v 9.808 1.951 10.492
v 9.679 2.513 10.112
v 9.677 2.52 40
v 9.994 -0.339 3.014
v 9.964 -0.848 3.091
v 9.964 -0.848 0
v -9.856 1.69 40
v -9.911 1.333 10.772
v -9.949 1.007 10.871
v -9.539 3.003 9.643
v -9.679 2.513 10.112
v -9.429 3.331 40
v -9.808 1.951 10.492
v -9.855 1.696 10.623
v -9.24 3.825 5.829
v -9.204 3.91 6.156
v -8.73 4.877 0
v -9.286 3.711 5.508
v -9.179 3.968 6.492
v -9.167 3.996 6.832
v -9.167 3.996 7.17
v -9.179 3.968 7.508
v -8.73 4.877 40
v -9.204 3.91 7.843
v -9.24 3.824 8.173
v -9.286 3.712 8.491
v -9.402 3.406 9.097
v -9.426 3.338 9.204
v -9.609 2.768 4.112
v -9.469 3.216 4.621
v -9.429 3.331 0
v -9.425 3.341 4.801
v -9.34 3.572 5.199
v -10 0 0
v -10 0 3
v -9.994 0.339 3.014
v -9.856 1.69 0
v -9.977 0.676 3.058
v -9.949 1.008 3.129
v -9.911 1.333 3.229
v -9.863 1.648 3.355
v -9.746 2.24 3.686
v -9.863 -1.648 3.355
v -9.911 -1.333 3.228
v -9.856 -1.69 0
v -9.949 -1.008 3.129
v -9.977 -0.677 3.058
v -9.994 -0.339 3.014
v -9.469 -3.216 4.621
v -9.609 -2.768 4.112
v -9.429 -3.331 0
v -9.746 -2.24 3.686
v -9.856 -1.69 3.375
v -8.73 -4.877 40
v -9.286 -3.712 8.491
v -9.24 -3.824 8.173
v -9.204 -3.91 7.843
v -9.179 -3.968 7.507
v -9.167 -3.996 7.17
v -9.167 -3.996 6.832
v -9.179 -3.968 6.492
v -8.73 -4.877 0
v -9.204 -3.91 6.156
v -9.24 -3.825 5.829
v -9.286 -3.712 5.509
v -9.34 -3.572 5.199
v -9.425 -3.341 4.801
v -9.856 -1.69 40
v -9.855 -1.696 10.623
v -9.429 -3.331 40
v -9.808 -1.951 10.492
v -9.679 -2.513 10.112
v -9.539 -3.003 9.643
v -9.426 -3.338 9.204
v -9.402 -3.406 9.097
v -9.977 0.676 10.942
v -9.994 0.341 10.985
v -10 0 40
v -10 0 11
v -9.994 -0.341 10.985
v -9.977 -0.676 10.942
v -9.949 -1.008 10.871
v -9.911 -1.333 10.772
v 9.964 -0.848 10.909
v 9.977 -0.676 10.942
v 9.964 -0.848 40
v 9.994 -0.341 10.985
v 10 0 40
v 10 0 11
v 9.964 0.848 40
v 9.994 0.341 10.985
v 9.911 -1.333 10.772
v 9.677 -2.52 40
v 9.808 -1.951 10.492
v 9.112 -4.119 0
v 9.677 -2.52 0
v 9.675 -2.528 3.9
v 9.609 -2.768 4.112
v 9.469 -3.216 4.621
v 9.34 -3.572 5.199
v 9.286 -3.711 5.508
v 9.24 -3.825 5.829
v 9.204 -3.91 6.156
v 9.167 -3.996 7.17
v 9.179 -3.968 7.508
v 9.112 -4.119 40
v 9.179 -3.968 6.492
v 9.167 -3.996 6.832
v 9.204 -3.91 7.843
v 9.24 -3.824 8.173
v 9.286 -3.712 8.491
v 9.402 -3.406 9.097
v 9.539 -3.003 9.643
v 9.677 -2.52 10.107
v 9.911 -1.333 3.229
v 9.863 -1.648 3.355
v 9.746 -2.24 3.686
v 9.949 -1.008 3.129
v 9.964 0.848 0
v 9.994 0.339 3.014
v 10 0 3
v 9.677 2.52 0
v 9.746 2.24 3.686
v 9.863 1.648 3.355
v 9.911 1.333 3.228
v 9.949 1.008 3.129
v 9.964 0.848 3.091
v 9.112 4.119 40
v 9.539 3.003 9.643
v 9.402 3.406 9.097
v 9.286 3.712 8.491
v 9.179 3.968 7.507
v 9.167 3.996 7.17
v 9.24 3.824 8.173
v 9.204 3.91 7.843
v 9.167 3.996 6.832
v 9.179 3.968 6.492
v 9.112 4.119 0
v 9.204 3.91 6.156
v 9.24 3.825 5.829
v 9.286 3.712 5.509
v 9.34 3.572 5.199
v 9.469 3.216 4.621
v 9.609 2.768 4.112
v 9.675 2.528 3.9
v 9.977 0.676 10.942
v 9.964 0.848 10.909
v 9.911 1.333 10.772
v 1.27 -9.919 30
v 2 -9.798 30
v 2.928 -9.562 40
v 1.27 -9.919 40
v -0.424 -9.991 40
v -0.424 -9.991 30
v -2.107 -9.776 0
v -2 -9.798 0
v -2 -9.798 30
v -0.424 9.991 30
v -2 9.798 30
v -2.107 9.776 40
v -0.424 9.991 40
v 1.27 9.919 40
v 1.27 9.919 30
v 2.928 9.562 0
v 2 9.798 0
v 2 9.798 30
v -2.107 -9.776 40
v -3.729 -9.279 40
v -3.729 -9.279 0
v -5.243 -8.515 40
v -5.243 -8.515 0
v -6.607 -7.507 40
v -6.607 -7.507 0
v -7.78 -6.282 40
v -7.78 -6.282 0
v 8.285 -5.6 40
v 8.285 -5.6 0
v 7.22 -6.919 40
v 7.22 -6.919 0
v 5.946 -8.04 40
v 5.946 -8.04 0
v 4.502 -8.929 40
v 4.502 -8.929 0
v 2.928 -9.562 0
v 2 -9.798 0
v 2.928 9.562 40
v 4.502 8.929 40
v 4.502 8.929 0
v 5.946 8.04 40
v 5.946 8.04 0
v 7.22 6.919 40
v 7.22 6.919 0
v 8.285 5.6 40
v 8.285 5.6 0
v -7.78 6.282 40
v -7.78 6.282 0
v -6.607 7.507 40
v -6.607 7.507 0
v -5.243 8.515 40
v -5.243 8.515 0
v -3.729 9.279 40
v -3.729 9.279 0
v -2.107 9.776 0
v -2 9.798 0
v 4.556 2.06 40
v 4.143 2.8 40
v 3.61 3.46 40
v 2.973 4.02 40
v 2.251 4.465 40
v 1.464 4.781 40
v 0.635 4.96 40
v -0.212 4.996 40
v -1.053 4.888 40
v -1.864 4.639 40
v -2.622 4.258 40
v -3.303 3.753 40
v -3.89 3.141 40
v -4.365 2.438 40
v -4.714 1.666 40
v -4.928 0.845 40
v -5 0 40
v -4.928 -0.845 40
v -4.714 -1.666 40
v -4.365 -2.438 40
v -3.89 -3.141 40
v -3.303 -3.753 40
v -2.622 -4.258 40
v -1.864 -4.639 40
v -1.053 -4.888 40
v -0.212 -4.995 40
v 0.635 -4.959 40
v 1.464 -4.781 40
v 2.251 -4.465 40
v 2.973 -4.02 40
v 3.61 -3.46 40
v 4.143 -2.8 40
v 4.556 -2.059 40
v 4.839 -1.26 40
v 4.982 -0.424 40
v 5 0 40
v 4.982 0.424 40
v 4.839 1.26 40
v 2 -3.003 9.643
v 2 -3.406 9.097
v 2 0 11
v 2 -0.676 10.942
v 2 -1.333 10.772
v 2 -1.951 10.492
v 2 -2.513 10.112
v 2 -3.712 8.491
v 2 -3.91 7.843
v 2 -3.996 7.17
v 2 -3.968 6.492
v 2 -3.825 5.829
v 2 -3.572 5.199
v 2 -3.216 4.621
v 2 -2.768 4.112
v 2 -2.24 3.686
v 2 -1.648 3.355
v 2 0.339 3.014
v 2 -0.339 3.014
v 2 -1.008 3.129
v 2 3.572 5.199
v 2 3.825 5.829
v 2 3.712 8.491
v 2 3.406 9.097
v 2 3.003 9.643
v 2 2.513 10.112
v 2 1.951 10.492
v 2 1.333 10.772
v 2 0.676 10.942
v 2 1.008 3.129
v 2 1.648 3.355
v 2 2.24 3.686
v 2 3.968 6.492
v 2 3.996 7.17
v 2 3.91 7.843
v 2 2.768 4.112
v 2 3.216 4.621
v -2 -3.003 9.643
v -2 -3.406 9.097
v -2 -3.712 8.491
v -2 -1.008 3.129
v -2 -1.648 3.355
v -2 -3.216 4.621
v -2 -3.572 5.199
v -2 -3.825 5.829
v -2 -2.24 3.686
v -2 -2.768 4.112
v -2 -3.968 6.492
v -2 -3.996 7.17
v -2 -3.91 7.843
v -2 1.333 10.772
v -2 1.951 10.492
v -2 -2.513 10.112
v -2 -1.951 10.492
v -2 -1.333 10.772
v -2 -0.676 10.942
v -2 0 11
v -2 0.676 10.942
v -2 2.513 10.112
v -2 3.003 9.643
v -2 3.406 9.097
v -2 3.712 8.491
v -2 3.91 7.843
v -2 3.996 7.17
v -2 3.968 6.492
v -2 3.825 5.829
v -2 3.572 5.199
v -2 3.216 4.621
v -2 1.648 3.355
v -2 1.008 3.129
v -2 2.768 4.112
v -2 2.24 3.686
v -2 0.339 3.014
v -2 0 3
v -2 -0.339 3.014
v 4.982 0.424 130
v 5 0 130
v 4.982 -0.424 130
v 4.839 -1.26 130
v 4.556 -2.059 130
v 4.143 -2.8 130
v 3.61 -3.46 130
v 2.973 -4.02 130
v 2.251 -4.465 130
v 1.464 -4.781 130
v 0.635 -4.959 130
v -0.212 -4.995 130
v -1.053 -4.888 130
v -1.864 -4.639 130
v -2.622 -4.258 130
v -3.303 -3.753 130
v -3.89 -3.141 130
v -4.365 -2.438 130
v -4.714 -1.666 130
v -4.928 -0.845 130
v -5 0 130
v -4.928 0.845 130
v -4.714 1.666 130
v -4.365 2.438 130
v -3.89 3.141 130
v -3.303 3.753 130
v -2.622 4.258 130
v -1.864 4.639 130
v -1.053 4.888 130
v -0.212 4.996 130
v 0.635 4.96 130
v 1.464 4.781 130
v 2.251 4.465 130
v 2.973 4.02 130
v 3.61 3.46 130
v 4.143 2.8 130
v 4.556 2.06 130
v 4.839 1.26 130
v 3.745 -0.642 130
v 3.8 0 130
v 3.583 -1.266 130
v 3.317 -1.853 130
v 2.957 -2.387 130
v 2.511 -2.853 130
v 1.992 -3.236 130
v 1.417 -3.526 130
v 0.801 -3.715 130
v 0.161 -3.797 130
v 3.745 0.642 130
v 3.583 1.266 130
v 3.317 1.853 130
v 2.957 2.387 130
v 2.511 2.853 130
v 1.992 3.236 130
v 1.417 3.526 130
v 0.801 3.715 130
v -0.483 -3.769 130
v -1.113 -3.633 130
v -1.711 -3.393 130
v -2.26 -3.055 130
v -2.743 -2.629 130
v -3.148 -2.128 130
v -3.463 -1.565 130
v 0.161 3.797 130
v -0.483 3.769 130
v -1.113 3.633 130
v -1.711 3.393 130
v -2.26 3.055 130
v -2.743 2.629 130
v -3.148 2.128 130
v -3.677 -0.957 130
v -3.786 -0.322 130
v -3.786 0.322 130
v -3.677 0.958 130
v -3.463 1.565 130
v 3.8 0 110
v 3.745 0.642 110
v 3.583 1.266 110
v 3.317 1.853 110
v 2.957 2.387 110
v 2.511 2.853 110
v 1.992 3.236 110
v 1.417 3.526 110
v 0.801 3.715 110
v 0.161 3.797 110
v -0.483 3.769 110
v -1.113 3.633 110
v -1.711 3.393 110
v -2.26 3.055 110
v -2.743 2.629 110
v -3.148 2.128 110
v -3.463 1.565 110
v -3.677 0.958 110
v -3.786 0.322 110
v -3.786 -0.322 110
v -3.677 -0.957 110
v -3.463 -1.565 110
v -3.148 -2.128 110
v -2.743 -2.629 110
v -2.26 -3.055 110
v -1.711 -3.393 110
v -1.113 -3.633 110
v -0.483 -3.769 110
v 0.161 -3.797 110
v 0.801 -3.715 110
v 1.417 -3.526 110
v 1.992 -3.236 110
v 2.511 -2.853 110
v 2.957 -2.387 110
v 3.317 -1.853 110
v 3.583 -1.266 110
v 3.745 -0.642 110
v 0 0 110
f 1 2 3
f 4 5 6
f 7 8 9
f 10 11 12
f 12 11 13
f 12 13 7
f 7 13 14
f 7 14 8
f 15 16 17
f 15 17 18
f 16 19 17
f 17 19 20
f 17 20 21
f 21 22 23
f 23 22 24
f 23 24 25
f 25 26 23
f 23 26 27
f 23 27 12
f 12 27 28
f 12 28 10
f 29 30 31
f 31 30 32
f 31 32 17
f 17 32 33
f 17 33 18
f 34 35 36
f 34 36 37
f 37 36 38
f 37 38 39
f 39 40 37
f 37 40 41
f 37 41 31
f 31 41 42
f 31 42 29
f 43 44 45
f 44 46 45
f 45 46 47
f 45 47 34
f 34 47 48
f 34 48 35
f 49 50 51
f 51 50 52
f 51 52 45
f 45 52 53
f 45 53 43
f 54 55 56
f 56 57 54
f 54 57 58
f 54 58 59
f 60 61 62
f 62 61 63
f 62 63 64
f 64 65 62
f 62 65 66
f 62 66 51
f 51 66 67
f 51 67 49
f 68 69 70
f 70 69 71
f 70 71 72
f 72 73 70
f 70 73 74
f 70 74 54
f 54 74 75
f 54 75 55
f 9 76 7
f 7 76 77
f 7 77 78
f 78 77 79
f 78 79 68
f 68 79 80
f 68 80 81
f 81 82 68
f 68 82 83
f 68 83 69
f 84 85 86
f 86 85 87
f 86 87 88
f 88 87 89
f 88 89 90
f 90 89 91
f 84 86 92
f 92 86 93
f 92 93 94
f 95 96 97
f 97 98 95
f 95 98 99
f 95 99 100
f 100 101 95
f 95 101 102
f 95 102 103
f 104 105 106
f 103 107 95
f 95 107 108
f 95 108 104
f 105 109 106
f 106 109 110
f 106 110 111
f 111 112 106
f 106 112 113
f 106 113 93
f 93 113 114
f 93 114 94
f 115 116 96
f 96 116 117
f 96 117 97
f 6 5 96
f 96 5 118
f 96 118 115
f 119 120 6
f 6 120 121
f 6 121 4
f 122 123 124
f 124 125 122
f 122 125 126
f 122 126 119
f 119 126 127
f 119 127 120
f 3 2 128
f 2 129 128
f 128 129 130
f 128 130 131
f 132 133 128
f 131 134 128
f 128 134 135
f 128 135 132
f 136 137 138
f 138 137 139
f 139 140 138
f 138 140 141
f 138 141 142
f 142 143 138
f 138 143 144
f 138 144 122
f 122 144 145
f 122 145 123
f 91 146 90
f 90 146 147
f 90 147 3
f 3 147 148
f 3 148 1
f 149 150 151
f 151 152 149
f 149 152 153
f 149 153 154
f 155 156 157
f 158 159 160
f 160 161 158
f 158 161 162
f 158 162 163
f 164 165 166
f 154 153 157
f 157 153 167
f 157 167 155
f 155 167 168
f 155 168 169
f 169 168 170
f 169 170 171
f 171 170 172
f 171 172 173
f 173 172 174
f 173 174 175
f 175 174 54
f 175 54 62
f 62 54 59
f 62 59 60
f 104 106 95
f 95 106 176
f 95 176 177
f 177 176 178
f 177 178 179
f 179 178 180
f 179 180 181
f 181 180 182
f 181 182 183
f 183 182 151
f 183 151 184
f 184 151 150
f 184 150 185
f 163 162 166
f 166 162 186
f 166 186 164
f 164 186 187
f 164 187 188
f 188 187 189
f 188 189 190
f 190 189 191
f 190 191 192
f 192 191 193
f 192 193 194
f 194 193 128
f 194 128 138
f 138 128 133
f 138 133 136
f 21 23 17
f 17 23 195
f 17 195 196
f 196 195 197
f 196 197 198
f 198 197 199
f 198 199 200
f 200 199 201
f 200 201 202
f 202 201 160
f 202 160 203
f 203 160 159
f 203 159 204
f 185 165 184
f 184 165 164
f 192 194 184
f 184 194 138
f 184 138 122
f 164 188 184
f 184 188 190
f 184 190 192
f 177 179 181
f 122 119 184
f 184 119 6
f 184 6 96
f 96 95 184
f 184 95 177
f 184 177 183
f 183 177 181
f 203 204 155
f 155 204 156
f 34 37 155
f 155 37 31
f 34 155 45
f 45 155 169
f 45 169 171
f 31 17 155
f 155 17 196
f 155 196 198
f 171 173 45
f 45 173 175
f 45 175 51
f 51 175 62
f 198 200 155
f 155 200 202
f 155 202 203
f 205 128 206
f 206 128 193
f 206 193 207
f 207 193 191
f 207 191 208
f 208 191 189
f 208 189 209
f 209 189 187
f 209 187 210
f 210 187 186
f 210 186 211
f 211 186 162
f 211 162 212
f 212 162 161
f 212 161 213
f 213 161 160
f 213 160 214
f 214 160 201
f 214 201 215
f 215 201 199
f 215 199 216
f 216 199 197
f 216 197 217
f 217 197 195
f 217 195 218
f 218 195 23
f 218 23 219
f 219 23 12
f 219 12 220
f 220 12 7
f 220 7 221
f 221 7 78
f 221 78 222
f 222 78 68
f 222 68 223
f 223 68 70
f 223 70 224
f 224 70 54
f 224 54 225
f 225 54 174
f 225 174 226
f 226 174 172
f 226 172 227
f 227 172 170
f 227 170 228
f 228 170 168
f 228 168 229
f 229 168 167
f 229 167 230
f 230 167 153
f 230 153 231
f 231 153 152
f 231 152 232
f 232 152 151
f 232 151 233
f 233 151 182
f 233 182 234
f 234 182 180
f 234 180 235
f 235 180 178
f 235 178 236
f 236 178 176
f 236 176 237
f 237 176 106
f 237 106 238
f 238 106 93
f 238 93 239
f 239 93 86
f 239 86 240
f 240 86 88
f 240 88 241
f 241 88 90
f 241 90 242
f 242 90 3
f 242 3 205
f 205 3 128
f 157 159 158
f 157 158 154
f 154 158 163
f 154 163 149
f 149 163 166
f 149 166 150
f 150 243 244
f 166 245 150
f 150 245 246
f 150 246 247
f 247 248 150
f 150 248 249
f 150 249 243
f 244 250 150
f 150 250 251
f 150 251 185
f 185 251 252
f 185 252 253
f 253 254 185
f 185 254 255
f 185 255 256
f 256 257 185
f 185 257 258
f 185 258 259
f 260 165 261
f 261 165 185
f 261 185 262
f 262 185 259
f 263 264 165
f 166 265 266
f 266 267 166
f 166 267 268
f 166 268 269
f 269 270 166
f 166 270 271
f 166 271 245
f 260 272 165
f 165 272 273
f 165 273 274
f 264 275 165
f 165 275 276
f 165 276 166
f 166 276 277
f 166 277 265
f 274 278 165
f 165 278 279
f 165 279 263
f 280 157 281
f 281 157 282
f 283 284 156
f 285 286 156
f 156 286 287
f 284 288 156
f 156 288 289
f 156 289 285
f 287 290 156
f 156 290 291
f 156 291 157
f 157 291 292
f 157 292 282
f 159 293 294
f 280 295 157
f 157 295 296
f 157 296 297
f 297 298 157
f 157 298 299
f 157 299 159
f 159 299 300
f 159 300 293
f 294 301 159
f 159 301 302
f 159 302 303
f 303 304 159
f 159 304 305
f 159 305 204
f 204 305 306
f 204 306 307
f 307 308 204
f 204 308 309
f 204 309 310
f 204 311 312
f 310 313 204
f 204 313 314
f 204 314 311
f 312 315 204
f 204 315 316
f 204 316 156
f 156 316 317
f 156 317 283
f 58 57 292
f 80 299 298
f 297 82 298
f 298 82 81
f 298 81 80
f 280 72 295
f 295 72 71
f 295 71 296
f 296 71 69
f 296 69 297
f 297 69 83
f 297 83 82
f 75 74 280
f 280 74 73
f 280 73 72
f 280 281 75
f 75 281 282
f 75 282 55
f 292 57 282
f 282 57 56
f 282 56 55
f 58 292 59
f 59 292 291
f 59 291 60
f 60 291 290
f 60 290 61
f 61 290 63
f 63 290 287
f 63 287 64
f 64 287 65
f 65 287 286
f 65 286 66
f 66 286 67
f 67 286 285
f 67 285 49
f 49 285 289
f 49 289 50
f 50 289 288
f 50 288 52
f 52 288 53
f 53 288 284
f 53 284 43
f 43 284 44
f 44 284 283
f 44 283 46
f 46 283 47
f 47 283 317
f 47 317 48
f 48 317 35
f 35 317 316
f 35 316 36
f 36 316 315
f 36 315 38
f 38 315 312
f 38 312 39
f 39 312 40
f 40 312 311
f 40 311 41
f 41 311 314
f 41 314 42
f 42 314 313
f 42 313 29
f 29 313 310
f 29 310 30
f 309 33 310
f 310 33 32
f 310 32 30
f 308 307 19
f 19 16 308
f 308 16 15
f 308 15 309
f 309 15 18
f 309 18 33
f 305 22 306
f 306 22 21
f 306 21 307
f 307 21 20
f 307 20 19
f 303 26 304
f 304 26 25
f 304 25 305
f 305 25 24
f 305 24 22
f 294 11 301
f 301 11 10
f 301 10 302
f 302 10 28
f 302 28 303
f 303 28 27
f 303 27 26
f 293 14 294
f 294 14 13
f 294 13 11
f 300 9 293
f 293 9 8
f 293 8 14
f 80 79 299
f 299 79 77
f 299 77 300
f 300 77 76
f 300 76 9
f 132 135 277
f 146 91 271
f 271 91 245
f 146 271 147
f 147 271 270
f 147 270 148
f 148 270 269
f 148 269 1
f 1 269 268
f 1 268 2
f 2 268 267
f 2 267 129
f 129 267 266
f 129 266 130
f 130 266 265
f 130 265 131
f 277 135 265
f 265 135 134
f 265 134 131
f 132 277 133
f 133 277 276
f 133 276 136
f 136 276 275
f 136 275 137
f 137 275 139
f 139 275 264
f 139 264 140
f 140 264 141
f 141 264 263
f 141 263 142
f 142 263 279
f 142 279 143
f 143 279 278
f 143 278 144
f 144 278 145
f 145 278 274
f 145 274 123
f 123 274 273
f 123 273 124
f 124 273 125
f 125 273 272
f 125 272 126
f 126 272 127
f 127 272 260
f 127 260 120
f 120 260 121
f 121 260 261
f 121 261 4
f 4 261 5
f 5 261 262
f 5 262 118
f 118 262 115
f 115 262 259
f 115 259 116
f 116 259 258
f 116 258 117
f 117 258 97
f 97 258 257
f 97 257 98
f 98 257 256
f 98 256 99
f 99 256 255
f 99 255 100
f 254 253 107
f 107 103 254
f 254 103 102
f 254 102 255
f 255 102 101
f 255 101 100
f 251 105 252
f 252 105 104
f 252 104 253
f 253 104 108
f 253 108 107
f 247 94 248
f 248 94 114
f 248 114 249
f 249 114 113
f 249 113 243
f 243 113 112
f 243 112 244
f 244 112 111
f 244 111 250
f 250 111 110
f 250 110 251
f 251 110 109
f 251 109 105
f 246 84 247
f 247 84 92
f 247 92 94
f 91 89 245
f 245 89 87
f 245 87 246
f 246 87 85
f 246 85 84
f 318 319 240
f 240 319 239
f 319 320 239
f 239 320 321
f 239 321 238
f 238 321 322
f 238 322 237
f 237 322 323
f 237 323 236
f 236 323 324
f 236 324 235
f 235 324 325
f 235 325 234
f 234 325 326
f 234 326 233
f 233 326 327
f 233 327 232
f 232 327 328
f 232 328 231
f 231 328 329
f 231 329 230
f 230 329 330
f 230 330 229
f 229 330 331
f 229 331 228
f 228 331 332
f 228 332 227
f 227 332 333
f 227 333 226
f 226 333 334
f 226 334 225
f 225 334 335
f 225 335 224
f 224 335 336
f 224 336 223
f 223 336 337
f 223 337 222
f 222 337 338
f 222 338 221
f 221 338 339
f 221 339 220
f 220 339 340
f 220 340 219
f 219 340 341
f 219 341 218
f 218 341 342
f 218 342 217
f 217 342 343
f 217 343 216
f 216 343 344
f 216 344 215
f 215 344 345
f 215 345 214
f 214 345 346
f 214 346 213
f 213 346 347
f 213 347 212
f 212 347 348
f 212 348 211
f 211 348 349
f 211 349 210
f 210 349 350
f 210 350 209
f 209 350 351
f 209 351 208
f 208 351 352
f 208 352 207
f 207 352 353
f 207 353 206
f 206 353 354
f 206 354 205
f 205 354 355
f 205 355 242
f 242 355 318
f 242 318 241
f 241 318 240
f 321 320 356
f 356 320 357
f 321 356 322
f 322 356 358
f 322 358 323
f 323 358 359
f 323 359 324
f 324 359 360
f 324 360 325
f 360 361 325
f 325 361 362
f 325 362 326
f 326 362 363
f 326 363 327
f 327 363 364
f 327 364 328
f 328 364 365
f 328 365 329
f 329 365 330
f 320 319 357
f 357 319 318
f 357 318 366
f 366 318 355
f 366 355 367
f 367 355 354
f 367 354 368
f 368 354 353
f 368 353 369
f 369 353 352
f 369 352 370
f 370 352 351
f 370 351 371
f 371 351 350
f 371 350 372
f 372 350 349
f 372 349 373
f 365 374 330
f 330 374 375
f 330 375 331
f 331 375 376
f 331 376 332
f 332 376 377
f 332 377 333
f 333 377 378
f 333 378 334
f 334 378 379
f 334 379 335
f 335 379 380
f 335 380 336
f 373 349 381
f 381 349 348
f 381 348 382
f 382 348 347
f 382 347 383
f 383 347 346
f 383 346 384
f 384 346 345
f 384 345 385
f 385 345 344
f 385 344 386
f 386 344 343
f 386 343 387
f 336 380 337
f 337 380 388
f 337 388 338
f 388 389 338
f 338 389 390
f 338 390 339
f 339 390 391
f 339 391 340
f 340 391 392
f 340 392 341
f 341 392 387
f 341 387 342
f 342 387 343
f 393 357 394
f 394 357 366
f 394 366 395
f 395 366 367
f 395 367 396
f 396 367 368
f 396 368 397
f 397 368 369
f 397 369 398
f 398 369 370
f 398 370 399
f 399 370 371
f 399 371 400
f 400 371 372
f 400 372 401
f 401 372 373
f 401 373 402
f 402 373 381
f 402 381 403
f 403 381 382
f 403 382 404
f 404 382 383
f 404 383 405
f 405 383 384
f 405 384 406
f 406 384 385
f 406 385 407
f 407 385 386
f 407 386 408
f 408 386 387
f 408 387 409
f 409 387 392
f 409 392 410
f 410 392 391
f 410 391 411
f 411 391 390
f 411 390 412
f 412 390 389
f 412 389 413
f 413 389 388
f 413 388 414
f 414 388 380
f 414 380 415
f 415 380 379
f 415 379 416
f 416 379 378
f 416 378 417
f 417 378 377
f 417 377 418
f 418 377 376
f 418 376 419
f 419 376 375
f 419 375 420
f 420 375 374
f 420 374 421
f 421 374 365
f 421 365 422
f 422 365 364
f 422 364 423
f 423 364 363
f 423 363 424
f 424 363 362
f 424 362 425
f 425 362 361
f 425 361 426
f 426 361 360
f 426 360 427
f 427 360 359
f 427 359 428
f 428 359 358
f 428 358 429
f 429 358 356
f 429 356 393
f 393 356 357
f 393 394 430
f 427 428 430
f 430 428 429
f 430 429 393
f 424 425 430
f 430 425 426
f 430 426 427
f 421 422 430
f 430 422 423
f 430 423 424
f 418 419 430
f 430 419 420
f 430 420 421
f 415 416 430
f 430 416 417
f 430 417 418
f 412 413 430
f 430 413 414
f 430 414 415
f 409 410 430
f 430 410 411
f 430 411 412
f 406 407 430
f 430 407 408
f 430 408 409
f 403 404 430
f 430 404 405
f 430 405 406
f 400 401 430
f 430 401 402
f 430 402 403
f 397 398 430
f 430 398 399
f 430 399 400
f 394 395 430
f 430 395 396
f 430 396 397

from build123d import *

# Parameters (mm, degrees)
SKETCH2_R               = 10
BOSS_EXTRUDE1_DEPTH     = 40
CUT_EXTRUDE1_DEPTH      = 20
CUT_EXTRUDE1_DEPTH_BACK = 20
SKETCH3_W               = 4
SKETCH3_H               = 30
CUT_EXTRUDE2_DEPTH      = 20
CUT_EXTRUDE2_DEPTH_BACK = 20
SKETCH4_R               = 4
SKETCH5_R               = 5
BOSS_EXTRUDE2_DEPTH     = 90
SKETCH6_R               = 3.8
CUT_EXTRUDE3_DEPTH      = 20


with BuildPart() as part:
    # Sketch2 → Boss-Extrude1 (new body)
    with BuildSketch(Plane.XY):
        Circle(SKETCH2_R)
    extrude(amount=BOSS_EXTRUDE1_DEPTH)

    # Sketch3 → Cut-Extrude1 (cut, two sides: drawn at the far end of the back side and taken through both)
    with BuildSketch(Plane(origin=(0, 0, 0), x_dir=(1, 0, 0), z_dir=(0, 1, 0)).offset(-CUT_EXTRUDE1_DEPTH_BACK)):
        with Locations((0, -15)):
            Rectangle(SKETCH3_W, SKETCH3_H)
    extrude(amount=CUT_EXTRUDE1_DEPTH + CUT_EXTRUDE1_DEPTH_BACK, mode=Mode.SUBTRACT)

    # Sketch4 → Cut-Extrude2 (cut, two sides: drawn at the far end of the back side and taken through both)
    with BuildSketch(Plane(origin=(0, 0, 0), x_dir=(0, 0, -1), z_dir=(1, 0, 0)).offset(-CUT_EXTRUDE2_DEPTH_BACK)):
        with Locations((-7, 0)):
            Circle(SKETCH4_R)
    extrude(amount=CUT_EXTRUDE2_DEPTH + CUT_EXTRUDE2_DEPTH_BACK, mode=Mode.SUBTRACT)

    # Sketch5 → Boss-Extrude2 (add)
    with BuildSketch(Plane.XY.offset(40)):
        Circle(SKETCH5_R)
    extrude(amount=BOSS_EXTRUDE2_DEPTH)

    # Sketch6 → Cut-Extrude3 (cut)
    with BuildSketch(Plane.XY.offset(130)):
        Circle(SKETCH6_R)
    extrude(amount=-CUT_EXTRUDE3_DEPTH, mode=Mode.SUBTRACT)


solid = part.part
